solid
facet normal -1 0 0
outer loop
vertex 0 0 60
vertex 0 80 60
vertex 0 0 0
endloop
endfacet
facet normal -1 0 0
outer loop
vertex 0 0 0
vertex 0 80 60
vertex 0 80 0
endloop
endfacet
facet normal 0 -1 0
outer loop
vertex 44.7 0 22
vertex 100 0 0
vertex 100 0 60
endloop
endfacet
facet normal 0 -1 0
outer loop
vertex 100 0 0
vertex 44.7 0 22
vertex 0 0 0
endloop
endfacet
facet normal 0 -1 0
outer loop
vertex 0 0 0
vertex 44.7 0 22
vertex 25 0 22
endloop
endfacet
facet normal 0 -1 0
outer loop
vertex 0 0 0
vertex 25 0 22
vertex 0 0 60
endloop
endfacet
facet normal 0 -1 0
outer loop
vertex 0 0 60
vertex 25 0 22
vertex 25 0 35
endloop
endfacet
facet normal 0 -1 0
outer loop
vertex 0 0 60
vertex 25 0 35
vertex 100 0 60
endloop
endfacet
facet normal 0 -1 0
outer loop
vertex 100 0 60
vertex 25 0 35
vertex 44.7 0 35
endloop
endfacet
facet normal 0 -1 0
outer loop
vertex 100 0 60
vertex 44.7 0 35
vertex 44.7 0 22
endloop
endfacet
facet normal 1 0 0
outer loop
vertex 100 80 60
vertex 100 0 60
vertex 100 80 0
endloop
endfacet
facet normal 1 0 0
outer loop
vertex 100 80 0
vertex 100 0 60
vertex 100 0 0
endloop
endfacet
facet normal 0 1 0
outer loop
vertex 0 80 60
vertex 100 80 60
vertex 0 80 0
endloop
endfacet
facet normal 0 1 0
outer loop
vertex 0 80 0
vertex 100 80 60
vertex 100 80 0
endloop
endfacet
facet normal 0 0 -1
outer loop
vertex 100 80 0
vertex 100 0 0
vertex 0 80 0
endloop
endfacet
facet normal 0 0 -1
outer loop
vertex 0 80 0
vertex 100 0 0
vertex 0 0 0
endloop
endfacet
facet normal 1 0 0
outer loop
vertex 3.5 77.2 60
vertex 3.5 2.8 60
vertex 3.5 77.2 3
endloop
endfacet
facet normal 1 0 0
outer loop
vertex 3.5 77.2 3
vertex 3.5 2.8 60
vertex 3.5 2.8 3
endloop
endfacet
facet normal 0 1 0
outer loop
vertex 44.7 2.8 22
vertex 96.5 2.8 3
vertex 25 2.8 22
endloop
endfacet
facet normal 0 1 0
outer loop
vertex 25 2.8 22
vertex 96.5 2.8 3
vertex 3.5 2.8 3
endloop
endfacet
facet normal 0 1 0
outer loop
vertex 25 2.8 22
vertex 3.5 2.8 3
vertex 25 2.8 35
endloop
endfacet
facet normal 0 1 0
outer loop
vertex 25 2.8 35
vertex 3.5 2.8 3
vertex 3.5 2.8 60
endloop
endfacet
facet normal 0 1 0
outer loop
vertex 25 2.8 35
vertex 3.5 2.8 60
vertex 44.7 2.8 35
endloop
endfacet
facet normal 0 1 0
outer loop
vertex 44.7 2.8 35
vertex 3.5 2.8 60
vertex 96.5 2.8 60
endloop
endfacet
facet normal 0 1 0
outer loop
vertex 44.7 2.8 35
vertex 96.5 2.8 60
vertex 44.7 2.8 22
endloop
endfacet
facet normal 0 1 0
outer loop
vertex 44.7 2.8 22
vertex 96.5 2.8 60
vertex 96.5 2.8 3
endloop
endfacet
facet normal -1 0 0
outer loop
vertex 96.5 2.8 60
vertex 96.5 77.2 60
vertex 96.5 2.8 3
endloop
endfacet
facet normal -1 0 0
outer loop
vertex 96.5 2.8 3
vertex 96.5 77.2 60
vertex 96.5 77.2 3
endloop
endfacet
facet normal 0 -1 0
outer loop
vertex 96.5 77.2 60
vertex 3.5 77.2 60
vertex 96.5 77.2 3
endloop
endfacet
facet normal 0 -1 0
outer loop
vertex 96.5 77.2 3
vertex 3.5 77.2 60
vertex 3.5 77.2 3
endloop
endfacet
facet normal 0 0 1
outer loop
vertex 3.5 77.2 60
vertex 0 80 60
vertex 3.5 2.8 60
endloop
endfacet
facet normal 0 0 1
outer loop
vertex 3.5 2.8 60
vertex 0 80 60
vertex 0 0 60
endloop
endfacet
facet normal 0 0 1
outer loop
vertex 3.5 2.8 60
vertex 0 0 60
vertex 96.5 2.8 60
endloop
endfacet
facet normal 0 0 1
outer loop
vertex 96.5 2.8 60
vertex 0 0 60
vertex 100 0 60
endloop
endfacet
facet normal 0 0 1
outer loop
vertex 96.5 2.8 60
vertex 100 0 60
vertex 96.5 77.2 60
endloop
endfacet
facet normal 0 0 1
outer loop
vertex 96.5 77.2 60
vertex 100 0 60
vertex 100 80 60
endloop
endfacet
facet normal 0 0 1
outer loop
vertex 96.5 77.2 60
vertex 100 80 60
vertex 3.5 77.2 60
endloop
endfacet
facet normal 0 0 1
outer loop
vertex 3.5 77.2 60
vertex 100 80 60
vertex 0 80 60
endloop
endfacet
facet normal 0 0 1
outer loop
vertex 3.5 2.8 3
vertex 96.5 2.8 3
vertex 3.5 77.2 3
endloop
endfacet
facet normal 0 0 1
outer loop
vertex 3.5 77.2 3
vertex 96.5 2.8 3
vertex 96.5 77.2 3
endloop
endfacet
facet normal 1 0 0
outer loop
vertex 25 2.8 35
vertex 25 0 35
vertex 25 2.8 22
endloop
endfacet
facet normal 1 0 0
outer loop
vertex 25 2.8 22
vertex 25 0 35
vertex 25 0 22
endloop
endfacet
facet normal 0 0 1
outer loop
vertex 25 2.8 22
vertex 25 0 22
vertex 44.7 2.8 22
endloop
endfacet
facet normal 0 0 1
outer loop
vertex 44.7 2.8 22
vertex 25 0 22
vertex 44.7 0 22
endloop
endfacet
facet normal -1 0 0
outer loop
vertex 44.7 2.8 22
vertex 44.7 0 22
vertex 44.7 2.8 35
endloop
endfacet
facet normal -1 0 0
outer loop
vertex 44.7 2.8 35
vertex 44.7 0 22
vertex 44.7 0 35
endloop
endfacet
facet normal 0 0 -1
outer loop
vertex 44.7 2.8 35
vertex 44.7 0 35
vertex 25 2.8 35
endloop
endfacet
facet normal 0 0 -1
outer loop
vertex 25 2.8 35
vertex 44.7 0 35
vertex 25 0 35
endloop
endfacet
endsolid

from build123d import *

# Parameters (mm, degrees)
ESBO_O1_W                  = 100
ESBO_O1_H                  = 80
RESSALTO_EXTRUS_O1_DEPTH   = 3
ESBO_O2_W                  = 100
ESBO_O2_H                  = 80
ESBO_O2_W_2                = 93
ESBO_O2_H_2                = 74.4
RESSALTO_EXTRUS_O2_DEPTH   = 60
ESBO_O3_W                  = 19.7
ESBO_O3_H                  = 13
CORTE_EXTRUS_O1_DEPTH      = 10
CORTE_EXTRUS_O1_DEPTH_BACK = 17


with BuildPart() as part:
    # Esboço1 → Ressalto-extrusão1 (new body)
    with BuildSketch(Plane.XY):
        with Locations((50, 40)):
            Rectangle(ESBO_O1_W, ESBO_O1_H)
    extrude(amount=RESSALTO_EXTRUS_O1_DEPTH)

    # Esboço2 → Ressalto-extrusão2 (add)
    with BuildSketch(Plane.XY):
        with Locations((50, 40)):
            Rectangle(ESBO_O2_W, ESBO_O2_H)
        with Locations((50, 40)):
            Rectangle(ESBO_O2_W_2, ESBO_O2_H_2, mode=Mode.SUBTRACT)
    extrude(amount=RESSALTO_EXTRUS_O2_DEPTH)

    # Esboço3 → Corte-extrusão1 (cut, two sides)
    with BuildSketch(Plane(origin=(0, 0, 0), x_dir=(1, 0, 0), z_dir=(0, 1, 0))) as corte_extrus_o1_sk:
        with Locations((34.85, -28.5)):
            Rectangle(ESBO_O3_W, ESBO_O3_H)
    extrude(amount=CORTE_EXTRUS_O1_DEPTH, mode=Mode.SUBTRACT)
    extrude(corte_extrus_o1_sk.sketch, amount=-CORTE_EXTRUS_O1_DEPTH_BACK, mode=Mode.SUBTRACT)


solid = part.part
